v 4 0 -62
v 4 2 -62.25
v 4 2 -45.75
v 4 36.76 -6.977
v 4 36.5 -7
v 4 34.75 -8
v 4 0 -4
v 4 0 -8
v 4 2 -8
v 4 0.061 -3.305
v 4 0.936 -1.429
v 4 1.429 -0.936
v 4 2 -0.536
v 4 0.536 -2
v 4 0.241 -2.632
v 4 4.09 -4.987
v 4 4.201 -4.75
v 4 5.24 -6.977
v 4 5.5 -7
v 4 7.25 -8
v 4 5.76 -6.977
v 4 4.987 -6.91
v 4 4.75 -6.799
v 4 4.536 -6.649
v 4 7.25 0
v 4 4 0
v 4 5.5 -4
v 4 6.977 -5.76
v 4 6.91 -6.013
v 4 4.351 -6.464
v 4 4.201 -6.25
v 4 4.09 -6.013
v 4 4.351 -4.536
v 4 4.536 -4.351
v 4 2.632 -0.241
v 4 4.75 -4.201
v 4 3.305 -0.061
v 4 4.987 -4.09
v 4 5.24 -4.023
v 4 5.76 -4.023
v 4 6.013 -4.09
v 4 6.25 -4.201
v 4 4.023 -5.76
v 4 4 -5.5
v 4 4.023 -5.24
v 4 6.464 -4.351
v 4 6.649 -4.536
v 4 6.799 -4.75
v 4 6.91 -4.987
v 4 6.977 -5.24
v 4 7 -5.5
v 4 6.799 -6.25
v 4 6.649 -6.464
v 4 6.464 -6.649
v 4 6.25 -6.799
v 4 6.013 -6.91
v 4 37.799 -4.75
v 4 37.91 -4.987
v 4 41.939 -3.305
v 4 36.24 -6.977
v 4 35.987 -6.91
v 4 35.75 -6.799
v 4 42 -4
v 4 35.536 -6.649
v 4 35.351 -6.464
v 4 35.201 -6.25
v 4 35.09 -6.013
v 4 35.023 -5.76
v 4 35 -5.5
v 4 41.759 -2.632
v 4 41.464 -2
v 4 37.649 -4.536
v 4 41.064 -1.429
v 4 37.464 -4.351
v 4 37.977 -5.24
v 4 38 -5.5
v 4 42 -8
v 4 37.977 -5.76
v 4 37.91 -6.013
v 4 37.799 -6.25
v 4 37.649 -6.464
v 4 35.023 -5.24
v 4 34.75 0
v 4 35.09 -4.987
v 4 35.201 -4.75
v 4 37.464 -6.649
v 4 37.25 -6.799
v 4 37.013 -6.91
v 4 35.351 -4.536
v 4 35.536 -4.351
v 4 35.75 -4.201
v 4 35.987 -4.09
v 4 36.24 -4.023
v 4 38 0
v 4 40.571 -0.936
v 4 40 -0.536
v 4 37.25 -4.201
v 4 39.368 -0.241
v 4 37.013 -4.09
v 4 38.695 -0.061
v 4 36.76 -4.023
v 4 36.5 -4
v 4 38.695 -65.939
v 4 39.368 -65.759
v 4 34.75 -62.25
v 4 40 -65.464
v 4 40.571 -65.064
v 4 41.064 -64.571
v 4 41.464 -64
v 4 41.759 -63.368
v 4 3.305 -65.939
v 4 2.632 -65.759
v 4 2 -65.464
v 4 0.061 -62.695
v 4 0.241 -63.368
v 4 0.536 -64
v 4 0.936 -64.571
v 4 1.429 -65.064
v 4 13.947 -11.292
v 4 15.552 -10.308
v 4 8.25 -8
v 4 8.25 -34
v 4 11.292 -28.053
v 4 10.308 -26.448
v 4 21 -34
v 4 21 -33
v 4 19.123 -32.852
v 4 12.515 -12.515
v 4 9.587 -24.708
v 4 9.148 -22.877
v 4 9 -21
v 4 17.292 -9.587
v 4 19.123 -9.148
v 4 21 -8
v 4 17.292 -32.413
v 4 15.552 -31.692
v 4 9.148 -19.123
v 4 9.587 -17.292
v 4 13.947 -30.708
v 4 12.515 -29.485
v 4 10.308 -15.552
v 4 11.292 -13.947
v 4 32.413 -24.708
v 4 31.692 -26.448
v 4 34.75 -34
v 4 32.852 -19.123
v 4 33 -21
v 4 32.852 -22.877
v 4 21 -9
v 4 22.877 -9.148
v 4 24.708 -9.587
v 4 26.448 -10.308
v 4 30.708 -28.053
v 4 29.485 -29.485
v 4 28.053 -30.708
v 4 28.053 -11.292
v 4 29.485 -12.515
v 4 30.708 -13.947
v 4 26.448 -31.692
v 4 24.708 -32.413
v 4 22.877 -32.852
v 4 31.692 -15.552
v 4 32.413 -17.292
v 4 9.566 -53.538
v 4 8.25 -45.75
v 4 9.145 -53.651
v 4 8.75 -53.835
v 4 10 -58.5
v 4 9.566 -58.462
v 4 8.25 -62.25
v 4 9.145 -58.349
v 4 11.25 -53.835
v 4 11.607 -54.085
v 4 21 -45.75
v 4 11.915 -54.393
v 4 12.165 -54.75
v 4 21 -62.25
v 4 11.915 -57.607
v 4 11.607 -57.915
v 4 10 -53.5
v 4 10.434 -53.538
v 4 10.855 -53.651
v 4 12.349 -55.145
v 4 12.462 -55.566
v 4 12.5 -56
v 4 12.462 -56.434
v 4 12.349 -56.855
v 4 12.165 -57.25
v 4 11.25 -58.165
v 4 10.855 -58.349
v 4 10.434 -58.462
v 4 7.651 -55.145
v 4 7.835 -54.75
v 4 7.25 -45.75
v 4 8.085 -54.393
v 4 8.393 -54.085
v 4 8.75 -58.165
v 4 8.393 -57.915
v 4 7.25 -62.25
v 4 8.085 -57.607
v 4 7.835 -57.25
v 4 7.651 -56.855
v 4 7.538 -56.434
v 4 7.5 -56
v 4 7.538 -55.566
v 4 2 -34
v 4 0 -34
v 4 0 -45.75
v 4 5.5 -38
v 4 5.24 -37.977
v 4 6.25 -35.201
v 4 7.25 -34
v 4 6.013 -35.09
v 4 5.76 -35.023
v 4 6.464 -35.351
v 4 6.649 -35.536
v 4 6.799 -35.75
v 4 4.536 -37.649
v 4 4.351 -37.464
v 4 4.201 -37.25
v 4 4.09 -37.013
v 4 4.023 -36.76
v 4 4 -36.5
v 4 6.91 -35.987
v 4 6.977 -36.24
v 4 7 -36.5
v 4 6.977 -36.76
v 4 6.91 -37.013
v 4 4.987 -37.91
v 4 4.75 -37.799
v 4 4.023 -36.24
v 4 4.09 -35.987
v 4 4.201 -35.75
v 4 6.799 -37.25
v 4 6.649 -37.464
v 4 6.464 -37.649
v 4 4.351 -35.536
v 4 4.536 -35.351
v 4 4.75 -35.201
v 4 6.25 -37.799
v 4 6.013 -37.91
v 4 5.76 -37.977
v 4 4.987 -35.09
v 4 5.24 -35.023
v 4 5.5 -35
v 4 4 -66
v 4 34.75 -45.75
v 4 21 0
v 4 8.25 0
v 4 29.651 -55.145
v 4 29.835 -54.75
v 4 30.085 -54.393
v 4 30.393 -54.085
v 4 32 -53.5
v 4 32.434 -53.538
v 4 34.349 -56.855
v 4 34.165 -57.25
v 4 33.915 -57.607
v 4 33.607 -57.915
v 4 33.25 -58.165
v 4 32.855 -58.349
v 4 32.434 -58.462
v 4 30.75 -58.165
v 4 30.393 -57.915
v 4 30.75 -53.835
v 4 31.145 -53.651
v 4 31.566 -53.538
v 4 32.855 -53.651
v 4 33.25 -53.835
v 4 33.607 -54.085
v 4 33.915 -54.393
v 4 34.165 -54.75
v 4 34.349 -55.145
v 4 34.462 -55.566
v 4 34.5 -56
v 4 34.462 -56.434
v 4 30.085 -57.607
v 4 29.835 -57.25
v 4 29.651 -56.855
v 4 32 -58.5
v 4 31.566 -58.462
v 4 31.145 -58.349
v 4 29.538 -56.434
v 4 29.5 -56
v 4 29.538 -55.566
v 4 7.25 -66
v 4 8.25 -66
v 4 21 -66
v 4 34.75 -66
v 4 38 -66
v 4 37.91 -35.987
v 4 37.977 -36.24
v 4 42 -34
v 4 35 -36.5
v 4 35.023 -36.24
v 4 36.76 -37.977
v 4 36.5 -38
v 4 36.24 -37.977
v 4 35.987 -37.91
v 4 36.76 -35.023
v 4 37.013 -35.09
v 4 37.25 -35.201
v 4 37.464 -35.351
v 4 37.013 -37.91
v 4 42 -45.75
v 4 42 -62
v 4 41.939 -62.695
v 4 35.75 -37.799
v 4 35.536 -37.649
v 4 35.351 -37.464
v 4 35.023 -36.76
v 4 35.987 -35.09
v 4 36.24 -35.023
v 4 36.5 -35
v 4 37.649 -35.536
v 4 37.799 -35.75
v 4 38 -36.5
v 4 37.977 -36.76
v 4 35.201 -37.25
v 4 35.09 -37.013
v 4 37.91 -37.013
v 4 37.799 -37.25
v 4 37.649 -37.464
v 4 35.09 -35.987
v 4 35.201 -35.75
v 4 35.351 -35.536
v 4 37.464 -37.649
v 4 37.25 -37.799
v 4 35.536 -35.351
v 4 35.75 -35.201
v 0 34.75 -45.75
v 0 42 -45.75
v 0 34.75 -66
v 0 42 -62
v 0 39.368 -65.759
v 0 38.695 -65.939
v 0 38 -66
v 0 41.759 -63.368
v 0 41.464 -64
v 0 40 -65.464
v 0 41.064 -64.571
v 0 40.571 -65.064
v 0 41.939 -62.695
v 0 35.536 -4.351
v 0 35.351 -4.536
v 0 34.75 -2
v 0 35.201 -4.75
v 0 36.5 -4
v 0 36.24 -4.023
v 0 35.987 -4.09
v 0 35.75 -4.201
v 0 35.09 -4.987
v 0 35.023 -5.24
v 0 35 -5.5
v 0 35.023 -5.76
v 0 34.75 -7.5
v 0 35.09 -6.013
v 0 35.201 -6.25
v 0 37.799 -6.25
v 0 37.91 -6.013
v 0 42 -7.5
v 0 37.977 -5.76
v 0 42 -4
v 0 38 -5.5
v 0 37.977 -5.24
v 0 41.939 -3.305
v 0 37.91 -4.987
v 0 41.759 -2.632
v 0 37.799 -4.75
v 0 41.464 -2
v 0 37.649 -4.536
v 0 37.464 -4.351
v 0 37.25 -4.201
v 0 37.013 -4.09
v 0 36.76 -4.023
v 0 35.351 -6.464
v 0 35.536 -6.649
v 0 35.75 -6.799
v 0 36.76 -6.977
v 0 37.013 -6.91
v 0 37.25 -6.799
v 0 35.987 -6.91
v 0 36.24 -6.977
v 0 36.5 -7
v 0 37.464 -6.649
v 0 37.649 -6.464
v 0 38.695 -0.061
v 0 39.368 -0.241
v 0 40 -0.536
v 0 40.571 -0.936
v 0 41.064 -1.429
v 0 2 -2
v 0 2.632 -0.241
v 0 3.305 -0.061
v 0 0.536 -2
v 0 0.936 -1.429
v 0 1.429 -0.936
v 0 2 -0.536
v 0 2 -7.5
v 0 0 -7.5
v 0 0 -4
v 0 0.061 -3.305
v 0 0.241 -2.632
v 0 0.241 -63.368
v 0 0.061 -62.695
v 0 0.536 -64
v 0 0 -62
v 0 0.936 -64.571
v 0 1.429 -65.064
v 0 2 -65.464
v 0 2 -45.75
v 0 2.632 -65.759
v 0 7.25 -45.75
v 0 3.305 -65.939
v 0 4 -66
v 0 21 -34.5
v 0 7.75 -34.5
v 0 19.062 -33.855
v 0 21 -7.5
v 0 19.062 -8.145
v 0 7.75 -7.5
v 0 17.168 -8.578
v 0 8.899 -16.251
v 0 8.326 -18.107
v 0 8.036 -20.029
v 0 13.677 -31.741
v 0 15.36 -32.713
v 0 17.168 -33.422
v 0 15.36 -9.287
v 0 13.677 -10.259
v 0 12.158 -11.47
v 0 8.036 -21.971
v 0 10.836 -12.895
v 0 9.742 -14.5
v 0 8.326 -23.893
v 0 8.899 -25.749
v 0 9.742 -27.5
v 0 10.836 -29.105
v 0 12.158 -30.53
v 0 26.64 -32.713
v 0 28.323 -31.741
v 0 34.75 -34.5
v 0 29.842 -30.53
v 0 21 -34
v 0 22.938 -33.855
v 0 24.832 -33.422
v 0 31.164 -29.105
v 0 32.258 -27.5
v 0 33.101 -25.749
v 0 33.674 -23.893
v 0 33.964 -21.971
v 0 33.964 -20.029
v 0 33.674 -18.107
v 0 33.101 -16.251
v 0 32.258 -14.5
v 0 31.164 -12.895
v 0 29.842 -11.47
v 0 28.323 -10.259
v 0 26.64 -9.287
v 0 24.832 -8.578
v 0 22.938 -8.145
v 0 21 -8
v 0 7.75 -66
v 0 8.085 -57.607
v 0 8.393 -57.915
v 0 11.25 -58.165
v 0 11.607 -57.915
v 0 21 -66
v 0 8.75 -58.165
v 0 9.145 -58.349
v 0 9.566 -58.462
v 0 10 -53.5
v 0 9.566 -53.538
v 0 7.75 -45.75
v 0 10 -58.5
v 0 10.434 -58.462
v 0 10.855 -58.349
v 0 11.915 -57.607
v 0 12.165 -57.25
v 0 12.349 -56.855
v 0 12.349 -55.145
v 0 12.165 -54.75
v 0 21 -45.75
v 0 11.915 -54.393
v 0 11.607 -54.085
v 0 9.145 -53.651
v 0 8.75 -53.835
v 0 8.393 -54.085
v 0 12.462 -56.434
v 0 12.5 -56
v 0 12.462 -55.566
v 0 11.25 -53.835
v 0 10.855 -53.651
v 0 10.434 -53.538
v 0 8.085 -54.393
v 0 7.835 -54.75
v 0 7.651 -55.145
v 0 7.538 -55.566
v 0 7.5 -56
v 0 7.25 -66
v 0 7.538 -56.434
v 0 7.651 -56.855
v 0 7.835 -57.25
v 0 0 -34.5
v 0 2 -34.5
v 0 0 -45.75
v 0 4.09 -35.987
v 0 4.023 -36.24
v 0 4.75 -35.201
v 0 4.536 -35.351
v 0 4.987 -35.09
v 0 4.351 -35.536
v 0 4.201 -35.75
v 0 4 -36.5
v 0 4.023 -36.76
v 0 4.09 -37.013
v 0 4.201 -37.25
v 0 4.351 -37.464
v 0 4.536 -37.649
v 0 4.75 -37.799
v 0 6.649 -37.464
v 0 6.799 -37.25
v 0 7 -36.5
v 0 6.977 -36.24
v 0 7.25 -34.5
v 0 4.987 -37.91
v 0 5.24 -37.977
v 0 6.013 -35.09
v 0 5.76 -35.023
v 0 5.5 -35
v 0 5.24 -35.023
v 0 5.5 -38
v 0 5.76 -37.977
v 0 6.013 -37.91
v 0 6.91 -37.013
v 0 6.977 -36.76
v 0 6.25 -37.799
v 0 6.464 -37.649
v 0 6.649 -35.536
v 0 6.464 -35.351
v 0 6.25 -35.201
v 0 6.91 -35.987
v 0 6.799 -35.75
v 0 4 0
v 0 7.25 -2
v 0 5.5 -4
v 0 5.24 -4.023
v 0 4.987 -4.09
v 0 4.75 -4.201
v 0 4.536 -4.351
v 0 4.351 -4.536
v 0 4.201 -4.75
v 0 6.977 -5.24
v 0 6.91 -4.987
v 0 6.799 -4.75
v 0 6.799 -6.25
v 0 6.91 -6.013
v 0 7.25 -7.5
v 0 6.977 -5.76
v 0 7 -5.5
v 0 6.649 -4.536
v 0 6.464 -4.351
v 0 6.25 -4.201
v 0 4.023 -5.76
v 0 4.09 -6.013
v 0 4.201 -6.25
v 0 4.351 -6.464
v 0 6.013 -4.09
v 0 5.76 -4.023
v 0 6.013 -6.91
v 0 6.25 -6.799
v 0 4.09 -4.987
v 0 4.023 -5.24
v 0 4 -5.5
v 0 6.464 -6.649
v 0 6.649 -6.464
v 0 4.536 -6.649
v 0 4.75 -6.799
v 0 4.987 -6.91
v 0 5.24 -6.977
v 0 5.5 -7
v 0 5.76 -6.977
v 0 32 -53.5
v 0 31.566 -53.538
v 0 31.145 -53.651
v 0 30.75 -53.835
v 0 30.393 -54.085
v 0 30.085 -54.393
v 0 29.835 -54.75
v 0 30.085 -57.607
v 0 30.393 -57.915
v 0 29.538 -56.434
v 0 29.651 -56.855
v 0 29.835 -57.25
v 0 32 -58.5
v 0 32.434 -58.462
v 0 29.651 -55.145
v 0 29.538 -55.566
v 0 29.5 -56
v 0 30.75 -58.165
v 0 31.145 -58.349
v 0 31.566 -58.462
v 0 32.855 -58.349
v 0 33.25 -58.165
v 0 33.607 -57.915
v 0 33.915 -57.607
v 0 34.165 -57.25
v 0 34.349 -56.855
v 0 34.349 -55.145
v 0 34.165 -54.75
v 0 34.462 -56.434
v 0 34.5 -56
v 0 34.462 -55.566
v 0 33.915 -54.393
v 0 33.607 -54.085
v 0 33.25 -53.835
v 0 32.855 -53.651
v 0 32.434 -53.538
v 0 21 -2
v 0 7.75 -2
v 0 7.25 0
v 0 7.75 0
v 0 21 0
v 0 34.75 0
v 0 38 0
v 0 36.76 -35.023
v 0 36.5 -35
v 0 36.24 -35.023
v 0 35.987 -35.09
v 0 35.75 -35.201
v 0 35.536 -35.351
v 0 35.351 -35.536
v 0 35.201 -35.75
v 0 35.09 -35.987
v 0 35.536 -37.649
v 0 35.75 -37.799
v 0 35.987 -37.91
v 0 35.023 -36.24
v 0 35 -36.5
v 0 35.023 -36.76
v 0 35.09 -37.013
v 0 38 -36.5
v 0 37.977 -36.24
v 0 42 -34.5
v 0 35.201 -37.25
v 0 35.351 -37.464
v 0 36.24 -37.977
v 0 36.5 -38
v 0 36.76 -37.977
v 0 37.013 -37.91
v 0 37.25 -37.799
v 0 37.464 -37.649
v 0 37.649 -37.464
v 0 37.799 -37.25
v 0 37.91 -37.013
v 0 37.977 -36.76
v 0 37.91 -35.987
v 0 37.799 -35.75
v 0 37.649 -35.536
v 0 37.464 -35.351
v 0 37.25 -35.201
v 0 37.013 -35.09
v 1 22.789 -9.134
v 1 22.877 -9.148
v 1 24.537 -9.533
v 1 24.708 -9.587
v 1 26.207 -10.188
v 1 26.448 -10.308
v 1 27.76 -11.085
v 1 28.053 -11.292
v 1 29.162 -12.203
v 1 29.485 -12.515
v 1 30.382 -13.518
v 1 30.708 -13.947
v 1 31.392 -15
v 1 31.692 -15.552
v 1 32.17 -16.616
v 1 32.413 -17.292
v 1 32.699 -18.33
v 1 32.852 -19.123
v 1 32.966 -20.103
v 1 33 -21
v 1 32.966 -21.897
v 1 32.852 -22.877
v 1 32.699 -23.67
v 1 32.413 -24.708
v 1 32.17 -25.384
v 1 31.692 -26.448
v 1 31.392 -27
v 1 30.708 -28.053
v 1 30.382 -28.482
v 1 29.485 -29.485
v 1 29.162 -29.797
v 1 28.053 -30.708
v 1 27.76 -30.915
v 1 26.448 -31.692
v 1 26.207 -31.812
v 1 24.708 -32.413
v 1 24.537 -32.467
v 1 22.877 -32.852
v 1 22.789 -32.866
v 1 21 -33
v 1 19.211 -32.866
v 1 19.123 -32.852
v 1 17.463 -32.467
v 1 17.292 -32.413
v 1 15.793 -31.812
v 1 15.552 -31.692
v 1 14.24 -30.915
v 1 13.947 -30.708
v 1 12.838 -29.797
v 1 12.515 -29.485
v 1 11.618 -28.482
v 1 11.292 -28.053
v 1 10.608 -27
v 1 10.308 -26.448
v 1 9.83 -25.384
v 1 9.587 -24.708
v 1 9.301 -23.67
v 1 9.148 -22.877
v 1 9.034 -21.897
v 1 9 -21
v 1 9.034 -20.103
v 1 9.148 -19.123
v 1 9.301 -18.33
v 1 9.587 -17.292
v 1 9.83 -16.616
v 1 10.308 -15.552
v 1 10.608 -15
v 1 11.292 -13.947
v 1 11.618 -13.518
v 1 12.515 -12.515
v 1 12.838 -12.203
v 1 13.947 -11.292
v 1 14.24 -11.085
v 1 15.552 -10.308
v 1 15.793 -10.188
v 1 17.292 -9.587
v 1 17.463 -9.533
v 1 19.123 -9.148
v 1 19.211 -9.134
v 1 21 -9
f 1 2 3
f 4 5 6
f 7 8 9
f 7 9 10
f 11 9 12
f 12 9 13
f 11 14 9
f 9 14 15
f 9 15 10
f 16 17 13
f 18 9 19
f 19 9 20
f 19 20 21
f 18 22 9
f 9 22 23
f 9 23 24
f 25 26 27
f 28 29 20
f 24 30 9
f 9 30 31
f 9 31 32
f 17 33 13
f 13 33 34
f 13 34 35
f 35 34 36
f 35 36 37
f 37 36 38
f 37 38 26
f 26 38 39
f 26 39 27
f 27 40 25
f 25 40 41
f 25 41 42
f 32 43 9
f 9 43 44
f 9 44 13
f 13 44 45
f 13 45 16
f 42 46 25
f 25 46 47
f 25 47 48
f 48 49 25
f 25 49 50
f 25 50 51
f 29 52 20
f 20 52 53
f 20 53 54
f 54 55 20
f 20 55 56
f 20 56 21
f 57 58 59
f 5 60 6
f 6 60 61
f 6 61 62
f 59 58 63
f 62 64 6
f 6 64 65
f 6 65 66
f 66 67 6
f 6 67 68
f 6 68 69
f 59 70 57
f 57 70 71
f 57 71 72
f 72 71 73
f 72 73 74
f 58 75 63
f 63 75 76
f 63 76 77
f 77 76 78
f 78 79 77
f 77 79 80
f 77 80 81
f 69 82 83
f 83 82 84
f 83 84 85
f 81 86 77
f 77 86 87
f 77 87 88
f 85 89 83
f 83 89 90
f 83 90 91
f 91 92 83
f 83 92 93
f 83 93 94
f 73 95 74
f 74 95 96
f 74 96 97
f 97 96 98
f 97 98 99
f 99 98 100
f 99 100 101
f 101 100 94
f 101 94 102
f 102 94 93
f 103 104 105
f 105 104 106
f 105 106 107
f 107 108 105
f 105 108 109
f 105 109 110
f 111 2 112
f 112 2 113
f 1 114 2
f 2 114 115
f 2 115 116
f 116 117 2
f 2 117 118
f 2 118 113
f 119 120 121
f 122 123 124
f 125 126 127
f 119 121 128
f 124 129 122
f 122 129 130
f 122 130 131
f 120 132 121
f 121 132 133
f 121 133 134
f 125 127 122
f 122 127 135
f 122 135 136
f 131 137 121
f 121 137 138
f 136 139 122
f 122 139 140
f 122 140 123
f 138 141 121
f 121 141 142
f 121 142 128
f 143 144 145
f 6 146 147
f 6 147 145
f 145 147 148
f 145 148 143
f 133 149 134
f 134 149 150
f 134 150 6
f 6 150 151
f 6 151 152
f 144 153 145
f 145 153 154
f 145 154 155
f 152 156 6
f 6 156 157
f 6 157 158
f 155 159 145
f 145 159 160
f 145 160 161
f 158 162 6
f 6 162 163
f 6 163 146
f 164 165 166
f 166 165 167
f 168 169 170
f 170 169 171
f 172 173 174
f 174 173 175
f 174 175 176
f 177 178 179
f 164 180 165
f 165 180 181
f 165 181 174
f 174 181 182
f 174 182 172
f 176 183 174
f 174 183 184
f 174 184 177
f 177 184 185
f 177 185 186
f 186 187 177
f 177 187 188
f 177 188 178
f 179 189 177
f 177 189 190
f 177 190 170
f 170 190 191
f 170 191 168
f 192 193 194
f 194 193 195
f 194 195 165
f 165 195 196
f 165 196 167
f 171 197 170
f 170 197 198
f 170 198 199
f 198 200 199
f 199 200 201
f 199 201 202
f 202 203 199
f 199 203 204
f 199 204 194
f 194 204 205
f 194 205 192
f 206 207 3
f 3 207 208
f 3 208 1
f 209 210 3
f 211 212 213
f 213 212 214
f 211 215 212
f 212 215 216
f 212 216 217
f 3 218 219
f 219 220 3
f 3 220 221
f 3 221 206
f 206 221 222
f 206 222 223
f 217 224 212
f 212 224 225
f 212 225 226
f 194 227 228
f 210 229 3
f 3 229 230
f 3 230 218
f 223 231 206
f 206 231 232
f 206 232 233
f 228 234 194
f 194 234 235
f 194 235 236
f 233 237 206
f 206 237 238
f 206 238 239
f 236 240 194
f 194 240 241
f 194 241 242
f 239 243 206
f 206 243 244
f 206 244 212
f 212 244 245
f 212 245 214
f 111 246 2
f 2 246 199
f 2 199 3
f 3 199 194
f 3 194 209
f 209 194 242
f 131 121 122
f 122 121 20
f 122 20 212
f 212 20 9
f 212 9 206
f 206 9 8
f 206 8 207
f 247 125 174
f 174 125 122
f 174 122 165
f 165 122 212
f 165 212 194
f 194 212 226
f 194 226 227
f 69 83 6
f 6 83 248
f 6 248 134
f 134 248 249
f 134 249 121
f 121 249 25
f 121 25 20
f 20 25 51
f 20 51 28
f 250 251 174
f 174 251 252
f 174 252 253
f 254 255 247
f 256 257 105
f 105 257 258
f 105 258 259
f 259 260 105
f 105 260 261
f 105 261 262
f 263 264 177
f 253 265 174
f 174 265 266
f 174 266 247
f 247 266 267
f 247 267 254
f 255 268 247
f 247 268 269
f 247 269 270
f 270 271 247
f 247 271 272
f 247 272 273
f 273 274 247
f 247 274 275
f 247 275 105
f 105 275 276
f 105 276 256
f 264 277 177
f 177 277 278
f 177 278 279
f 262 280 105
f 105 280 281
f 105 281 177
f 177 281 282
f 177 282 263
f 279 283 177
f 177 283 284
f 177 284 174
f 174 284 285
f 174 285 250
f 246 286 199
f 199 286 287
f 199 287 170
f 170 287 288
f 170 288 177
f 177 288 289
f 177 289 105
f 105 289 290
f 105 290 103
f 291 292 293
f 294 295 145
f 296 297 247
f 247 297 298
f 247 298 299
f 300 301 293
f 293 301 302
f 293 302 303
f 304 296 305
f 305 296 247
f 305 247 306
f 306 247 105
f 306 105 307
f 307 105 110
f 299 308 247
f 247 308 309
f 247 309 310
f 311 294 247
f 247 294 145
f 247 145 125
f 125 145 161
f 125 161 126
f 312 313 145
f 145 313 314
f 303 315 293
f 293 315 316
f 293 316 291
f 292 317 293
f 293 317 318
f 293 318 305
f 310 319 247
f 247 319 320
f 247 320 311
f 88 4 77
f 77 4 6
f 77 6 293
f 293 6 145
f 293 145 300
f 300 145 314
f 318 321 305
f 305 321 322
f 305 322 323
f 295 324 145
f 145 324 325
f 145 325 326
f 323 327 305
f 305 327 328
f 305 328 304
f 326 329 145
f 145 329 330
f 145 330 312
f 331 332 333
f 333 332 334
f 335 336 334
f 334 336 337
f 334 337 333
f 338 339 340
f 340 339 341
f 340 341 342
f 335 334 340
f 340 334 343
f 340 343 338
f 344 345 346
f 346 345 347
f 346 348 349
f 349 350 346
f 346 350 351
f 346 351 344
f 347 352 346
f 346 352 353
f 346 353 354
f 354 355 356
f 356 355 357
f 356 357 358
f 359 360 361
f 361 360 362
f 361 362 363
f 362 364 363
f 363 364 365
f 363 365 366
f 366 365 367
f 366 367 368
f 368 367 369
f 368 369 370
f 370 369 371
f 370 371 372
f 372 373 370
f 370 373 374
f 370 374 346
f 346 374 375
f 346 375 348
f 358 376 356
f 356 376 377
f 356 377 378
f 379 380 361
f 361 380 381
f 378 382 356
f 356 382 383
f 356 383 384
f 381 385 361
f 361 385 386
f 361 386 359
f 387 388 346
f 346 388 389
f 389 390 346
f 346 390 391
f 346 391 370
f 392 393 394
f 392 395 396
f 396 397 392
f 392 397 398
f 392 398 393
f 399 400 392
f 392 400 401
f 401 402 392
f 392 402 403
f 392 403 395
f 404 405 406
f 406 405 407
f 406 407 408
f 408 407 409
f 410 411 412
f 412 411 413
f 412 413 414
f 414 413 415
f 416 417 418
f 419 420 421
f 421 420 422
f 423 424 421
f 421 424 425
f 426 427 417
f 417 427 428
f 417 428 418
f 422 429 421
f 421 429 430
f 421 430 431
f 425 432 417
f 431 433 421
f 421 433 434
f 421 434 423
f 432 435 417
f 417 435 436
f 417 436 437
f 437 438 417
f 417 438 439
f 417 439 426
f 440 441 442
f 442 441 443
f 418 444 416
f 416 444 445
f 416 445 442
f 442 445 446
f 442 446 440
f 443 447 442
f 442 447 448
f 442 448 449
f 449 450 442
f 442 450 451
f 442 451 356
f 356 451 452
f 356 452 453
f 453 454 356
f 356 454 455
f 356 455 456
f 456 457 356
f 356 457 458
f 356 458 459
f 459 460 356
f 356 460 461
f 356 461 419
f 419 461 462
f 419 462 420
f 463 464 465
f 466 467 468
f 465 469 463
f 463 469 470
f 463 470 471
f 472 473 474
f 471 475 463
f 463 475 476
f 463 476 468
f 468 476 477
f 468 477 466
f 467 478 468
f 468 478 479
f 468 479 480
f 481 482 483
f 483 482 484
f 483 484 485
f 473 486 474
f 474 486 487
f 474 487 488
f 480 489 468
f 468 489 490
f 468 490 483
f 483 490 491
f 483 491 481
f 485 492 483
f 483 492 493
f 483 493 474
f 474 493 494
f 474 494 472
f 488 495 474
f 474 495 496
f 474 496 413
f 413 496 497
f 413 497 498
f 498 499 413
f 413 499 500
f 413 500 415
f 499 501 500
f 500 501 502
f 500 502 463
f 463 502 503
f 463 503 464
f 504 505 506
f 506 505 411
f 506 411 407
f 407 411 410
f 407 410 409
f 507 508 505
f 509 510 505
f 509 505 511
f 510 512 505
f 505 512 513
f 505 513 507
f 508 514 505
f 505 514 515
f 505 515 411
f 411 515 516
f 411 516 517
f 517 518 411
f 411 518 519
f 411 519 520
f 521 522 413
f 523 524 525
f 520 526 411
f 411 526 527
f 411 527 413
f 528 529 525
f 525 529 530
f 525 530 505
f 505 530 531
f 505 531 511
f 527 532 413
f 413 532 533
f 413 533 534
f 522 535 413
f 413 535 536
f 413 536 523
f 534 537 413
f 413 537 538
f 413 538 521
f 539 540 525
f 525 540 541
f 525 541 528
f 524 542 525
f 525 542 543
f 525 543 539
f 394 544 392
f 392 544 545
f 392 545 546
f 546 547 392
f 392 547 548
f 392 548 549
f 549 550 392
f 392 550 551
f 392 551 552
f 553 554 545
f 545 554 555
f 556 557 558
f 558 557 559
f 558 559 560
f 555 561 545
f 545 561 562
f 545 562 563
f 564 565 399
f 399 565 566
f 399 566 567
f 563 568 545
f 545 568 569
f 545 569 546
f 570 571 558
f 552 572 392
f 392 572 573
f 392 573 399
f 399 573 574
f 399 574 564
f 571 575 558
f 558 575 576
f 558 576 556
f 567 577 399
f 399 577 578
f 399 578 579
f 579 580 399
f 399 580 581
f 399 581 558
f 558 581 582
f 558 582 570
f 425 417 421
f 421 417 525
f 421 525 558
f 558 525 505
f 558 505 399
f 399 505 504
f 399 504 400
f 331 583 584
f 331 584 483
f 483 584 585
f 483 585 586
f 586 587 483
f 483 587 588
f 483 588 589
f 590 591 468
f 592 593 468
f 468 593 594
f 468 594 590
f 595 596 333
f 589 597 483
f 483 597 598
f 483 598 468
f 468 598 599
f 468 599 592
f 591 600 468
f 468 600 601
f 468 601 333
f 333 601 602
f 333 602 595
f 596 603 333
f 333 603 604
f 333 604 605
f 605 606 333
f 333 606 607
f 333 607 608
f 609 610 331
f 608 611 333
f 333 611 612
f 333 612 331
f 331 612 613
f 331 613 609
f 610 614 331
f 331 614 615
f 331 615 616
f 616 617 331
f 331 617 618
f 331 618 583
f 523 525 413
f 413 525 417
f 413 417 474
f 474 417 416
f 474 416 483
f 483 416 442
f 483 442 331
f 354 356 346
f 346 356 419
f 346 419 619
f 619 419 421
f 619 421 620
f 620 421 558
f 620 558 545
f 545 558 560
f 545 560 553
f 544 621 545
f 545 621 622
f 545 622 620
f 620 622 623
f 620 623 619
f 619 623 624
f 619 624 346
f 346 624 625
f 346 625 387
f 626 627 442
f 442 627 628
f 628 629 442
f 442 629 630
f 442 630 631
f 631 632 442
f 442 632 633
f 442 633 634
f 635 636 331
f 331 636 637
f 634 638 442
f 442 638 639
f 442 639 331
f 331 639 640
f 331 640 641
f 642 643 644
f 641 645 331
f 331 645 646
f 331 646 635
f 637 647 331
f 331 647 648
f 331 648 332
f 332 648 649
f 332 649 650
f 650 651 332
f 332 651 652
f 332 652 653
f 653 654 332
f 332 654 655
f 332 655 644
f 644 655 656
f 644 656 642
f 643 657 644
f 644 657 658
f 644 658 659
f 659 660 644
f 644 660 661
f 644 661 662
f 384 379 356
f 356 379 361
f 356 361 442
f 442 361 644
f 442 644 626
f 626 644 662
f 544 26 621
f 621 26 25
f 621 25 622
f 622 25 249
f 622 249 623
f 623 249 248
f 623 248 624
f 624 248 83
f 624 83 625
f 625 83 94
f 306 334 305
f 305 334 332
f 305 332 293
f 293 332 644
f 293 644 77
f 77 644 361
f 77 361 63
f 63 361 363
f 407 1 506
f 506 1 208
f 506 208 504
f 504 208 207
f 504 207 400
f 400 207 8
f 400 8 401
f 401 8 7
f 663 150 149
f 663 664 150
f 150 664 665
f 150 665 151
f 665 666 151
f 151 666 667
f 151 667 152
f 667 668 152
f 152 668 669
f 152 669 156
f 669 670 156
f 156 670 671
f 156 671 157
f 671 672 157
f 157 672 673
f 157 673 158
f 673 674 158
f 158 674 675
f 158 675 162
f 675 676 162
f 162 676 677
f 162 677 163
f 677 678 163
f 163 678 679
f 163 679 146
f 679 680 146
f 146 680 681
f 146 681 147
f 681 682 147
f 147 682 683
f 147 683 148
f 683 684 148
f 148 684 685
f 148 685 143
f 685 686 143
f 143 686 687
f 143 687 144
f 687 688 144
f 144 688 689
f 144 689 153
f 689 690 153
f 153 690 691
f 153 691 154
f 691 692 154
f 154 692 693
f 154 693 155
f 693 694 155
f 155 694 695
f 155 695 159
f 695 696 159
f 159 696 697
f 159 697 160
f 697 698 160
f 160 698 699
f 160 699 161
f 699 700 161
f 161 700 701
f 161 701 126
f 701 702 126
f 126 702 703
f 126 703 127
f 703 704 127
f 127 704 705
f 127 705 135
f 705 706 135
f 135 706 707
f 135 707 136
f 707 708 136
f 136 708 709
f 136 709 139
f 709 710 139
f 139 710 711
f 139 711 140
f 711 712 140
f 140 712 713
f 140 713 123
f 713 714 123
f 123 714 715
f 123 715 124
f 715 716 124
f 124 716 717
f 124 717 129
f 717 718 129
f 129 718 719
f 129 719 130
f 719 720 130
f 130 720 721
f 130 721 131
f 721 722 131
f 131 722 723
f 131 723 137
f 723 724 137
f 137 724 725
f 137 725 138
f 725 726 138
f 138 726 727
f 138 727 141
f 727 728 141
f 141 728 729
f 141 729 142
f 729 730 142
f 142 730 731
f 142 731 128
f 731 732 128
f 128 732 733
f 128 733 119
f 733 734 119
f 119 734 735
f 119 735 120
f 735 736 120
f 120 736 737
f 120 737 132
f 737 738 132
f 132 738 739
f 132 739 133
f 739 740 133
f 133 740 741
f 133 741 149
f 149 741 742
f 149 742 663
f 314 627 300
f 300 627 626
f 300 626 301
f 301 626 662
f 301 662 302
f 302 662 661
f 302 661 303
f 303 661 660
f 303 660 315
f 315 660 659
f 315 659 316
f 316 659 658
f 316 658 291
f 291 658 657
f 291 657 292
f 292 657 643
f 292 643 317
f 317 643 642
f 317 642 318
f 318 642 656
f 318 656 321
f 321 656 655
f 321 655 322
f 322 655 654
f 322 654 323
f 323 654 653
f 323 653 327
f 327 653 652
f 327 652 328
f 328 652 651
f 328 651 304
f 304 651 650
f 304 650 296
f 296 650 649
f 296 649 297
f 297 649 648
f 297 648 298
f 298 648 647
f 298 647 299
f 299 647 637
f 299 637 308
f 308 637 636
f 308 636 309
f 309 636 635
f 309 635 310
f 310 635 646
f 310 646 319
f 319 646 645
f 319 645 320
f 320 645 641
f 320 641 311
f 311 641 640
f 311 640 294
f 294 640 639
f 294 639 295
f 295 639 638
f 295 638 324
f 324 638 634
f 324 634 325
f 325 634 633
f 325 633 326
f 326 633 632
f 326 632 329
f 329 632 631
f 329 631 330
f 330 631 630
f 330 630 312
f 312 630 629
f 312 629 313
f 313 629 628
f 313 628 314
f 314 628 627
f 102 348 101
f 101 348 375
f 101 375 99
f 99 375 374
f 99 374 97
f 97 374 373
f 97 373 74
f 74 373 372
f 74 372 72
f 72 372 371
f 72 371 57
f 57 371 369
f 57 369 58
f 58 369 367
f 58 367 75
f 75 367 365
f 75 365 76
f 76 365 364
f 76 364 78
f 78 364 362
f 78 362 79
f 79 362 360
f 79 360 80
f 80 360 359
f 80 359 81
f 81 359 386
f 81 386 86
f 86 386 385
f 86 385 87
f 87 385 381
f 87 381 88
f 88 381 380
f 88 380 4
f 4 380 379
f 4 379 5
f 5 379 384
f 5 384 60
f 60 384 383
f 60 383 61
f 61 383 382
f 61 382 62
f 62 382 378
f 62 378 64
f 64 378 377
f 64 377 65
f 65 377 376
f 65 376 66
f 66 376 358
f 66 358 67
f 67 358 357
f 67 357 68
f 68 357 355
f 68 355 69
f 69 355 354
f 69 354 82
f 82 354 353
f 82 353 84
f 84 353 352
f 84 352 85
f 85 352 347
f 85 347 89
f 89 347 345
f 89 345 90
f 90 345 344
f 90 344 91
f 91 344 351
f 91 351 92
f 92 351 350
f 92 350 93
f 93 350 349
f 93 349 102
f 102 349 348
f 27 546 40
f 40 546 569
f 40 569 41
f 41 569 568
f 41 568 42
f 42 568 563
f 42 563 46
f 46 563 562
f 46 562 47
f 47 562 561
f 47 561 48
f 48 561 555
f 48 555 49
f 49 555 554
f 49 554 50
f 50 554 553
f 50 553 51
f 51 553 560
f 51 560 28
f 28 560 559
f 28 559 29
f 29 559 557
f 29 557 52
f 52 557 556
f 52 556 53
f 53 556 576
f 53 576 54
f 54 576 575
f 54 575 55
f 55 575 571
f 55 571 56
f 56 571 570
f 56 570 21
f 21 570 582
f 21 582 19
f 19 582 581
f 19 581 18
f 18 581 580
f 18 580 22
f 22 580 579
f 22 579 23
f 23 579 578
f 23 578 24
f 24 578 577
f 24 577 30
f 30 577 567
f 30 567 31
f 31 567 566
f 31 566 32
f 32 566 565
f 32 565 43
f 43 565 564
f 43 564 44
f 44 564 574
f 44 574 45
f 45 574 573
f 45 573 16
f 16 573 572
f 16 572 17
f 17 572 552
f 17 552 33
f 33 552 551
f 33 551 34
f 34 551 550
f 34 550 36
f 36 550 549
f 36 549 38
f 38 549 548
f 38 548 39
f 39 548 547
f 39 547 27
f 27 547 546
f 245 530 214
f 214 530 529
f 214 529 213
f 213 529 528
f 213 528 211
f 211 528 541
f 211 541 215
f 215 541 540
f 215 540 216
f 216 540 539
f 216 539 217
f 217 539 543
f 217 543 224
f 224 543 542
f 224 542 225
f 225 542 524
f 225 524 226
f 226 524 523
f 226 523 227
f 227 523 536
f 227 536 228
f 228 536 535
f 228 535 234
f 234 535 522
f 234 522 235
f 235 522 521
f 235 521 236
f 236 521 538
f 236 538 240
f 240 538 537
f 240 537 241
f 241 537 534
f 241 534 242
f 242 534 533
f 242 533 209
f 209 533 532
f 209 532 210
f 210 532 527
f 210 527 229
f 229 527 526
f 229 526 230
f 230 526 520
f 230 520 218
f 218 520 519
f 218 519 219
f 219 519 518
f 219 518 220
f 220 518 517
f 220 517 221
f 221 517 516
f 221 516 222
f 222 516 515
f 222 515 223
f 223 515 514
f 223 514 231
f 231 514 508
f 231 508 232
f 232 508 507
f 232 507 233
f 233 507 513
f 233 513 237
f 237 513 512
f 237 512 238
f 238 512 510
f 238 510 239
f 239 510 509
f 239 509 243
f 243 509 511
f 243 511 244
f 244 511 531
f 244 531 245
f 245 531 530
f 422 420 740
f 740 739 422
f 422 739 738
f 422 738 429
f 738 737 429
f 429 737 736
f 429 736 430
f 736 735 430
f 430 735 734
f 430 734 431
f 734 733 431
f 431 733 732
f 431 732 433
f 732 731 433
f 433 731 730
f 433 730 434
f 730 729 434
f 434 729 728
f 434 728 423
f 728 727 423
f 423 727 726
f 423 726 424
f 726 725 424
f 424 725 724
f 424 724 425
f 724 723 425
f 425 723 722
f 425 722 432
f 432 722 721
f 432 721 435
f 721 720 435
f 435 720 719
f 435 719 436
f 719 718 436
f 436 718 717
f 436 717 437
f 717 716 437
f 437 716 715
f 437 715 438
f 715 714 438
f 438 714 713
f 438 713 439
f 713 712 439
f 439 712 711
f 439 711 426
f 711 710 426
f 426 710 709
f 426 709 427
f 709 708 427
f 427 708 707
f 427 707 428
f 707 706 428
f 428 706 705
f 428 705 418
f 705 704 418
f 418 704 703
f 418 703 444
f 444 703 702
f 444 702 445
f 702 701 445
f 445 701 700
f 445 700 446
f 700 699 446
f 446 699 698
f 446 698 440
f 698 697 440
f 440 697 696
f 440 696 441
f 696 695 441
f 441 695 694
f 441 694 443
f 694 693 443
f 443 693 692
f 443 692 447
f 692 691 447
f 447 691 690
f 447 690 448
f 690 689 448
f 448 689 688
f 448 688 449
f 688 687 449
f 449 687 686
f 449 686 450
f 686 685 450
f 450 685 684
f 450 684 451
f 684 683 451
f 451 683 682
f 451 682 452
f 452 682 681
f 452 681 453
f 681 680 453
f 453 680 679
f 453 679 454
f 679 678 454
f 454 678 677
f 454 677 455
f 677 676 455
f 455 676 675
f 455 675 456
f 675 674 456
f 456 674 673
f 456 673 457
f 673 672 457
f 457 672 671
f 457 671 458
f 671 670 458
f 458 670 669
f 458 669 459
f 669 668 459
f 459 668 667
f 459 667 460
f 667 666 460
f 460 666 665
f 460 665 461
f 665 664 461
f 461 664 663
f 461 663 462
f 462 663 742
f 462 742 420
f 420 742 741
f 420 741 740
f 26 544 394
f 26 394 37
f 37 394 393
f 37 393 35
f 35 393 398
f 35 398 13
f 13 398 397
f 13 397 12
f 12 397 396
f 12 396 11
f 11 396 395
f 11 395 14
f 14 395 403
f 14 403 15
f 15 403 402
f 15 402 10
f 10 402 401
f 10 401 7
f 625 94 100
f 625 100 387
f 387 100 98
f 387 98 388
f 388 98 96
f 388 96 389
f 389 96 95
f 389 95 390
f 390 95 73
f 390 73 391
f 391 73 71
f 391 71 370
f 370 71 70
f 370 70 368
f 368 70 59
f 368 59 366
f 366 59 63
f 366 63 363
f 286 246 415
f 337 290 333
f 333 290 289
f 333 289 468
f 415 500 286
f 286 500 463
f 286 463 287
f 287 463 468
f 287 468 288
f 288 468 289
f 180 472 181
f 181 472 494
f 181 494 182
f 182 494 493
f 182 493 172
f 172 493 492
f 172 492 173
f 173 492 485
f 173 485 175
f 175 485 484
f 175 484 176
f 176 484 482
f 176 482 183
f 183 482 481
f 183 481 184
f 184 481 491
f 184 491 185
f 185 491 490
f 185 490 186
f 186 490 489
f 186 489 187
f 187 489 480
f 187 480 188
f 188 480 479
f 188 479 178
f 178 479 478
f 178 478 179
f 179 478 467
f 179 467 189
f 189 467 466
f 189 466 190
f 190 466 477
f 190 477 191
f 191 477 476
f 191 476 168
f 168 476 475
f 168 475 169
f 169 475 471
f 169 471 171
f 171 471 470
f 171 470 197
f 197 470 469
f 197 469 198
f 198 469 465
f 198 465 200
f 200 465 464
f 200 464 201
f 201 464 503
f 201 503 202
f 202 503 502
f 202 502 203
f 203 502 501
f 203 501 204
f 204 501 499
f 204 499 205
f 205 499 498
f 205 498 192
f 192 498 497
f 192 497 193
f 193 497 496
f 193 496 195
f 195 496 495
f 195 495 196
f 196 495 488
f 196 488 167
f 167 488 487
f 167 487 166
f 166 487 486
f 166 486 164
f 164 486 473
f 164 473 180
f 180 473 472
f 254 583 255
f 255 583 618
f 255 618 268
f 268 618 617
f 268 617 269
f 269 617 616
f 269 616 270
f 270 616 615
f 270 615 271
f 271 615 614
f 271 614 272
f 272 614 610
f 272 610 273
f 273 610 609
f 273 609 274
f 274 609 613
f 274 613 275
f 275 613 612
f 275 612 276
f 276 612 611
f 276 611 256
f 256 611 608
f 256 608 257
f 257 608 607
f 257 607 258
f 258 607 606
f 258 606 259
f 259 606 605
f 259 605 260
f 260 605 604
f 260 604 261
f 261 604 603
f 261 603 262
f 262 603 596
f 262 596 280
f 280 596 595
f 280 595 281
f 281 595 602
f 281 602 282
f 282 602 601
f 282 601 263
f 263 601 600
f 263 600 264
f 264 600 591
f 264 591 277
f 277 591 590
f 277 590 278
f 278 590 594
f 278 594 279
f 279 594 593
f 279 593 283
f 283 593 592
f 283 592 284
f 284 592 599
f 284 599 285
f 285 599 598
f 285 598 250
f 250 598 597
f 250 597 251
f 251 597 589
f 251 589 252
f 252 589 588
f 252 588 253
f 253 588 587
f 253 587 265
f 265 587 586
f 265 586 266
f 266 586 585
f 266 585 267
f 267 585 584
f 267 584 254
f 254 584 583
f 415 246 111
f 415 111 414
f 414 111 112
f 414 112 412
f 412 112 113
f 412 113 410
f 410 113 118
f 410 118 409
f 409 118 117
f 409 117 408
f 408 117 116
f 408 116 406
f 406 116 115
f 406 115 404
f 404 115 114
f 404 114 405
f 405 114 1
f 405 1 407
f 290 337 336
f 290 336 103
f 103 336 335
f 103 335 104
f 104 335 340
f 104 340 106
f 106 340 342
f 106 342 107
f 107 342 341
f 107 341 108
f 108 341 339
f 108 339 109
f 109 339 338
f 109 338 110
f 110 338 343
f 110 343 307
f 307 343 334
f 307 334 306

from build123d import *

# Parameters (mm, degrees)
BOSS_EXTRUDE1_DEPTH = 42
SKETCH2_R           = 12
SKETCH2_R_2         = 1.5
CUT_EXTRUDE1_DEPTH  = 5
SKETCH3_R           = 2
CUT_EXTRUDE2_DEPTH  = 5
CHAMFER1_SIZE       = 2
CHAMFER2_SIZE       = 1
FILLET1_R           = 4
BOSS_EXTRUDE2_DEPTH = 42
SKETCH5_W           = 27.168576179
SKETCH5_H           = 4
CUT_EXTRUDE3_DEPTH  = 44
SKETCH6_R           = 2.5
CUT_EXTRUDE4_DEPTH  = 44
FILLET2_R           = 4


with BuildPart() as part:
    # Sketch1 → Boss-Extrude1 (new body)
    with BuildSketch(Plane(origin=(0, 0, 0), x_dir=(1, 0, 0), z_dir=(0, 1, 0))):
        Polygon((0, 0), (0, 42), (-20, 42), (-20, 46), (4, 46), (4, 0), align=None)
    extrude(amount=BOSS_EXTRUDE1_DEPTH)

    # Sketch2 → Cut-Extrude1 (cut, through all)
    with BuildSketch(Plane.ZY):
        with Locations((-21, 21)):
            Circle(SKETCH2_R)
        with Locations((-36.5, 36.5)):
            Circle(SKETCH2_R_2)
        with Locations((-5.5, 36.5)):
            Circle(SKETCH2_R_2)
        with Locations((-5.5, 5.5)):
            Circle(SKETCH2_R_2)
        with Locations((-36.5, 5.5)):
            Circle(SKETCH2_R_2)
    extrude(amount=-CUT_EXTRUDE1_DEPTH, mode=Mode.SUBTRACT)

    # Sketch3 → Cut-Extrude2 (cut, through all)
    with BuildSketch(Plane.XY.offset(-42)):
        with Locations((-10, 32)):
            Circle(SKETCH3_R)
        with Locations((-10, 10)):
            Circle(SKETCH3_R)
    extrude(amount=-CUT_EXTRUDE2_DEPTH, mode=Mode.SUBTRACT)

    # Chamfer1
    chamfer1_edges = [part.edges().sort_by_distance(p)[0] for p in [
        (-12, 32, -42),
        (-12, 10, -42),
    ]]
    chamfer(chamfer1_edges, length=CHAMFER1_SIZE)

    # Chamfer2
    chamfer2_edges = [part.edges().sort_by_distance(p)[0] for p in [
        (0, 21, -33),
    ]]
    chamfer(chamfer2_edges, length=CHAMFER2_SIZE)

    # Fillet1
    fillet1_edges = [part.edges().sort_by_distance(p)[0] for p in [
        (4, 21, -46),
        (-20, 42, -44),
        (2, 42, 0),
        (-20, 0, -44),
        (2, 0, 0),
    ]]
    fillet(fillet1_edges, radius=FILLET1_R)

    # Sketch4 → Boss-Extrude2 (add)
    with BuildSketch(Plane.XZ):
        Polygon((0, -46), (0, -66), (4, -66), (4, -42), (0, -42), align=None)
    extrude(amount=-BOSS_EXTRUDE2_DEPTH)

    # Sketch5 → Cut-Extrude3 (cut)
    with BuildSketch(Plane(origin=(0, 42, 0), x_dir=(1, 0, 0), z_dir=(0, 1, 0))):
        with Locations((-13.58428809, 44)):
            Rectangle(SKETCH5_W, SKETCH5_H)
    extrude(amount=-CUT_EXTRUDE3_DEPTH, mode=Mode.SUBTRACT)

    # Sketch6 → Cut-Extrude4 (cut)
    with BuildSketch(Plane.ZY):
        with Locations((-56, 32)):
            Circle(SKETCH6_R)
        with Locations((-56, 10)):
            Circle(SKETCH6_R)
    extrude(amount=-CUT_EXTRUDE4_DEPTH, mode=Mode.SUBTRACT)

    # Fillet2
    fillet2_edges = [part.edges().sort_by_distance(p)[0] for p in [
        (2, 42, -66),
        (2, 0, -66),
    ]]
    fillet(fillet2_edges, radius=FILLET2_R)


solid = part.part
